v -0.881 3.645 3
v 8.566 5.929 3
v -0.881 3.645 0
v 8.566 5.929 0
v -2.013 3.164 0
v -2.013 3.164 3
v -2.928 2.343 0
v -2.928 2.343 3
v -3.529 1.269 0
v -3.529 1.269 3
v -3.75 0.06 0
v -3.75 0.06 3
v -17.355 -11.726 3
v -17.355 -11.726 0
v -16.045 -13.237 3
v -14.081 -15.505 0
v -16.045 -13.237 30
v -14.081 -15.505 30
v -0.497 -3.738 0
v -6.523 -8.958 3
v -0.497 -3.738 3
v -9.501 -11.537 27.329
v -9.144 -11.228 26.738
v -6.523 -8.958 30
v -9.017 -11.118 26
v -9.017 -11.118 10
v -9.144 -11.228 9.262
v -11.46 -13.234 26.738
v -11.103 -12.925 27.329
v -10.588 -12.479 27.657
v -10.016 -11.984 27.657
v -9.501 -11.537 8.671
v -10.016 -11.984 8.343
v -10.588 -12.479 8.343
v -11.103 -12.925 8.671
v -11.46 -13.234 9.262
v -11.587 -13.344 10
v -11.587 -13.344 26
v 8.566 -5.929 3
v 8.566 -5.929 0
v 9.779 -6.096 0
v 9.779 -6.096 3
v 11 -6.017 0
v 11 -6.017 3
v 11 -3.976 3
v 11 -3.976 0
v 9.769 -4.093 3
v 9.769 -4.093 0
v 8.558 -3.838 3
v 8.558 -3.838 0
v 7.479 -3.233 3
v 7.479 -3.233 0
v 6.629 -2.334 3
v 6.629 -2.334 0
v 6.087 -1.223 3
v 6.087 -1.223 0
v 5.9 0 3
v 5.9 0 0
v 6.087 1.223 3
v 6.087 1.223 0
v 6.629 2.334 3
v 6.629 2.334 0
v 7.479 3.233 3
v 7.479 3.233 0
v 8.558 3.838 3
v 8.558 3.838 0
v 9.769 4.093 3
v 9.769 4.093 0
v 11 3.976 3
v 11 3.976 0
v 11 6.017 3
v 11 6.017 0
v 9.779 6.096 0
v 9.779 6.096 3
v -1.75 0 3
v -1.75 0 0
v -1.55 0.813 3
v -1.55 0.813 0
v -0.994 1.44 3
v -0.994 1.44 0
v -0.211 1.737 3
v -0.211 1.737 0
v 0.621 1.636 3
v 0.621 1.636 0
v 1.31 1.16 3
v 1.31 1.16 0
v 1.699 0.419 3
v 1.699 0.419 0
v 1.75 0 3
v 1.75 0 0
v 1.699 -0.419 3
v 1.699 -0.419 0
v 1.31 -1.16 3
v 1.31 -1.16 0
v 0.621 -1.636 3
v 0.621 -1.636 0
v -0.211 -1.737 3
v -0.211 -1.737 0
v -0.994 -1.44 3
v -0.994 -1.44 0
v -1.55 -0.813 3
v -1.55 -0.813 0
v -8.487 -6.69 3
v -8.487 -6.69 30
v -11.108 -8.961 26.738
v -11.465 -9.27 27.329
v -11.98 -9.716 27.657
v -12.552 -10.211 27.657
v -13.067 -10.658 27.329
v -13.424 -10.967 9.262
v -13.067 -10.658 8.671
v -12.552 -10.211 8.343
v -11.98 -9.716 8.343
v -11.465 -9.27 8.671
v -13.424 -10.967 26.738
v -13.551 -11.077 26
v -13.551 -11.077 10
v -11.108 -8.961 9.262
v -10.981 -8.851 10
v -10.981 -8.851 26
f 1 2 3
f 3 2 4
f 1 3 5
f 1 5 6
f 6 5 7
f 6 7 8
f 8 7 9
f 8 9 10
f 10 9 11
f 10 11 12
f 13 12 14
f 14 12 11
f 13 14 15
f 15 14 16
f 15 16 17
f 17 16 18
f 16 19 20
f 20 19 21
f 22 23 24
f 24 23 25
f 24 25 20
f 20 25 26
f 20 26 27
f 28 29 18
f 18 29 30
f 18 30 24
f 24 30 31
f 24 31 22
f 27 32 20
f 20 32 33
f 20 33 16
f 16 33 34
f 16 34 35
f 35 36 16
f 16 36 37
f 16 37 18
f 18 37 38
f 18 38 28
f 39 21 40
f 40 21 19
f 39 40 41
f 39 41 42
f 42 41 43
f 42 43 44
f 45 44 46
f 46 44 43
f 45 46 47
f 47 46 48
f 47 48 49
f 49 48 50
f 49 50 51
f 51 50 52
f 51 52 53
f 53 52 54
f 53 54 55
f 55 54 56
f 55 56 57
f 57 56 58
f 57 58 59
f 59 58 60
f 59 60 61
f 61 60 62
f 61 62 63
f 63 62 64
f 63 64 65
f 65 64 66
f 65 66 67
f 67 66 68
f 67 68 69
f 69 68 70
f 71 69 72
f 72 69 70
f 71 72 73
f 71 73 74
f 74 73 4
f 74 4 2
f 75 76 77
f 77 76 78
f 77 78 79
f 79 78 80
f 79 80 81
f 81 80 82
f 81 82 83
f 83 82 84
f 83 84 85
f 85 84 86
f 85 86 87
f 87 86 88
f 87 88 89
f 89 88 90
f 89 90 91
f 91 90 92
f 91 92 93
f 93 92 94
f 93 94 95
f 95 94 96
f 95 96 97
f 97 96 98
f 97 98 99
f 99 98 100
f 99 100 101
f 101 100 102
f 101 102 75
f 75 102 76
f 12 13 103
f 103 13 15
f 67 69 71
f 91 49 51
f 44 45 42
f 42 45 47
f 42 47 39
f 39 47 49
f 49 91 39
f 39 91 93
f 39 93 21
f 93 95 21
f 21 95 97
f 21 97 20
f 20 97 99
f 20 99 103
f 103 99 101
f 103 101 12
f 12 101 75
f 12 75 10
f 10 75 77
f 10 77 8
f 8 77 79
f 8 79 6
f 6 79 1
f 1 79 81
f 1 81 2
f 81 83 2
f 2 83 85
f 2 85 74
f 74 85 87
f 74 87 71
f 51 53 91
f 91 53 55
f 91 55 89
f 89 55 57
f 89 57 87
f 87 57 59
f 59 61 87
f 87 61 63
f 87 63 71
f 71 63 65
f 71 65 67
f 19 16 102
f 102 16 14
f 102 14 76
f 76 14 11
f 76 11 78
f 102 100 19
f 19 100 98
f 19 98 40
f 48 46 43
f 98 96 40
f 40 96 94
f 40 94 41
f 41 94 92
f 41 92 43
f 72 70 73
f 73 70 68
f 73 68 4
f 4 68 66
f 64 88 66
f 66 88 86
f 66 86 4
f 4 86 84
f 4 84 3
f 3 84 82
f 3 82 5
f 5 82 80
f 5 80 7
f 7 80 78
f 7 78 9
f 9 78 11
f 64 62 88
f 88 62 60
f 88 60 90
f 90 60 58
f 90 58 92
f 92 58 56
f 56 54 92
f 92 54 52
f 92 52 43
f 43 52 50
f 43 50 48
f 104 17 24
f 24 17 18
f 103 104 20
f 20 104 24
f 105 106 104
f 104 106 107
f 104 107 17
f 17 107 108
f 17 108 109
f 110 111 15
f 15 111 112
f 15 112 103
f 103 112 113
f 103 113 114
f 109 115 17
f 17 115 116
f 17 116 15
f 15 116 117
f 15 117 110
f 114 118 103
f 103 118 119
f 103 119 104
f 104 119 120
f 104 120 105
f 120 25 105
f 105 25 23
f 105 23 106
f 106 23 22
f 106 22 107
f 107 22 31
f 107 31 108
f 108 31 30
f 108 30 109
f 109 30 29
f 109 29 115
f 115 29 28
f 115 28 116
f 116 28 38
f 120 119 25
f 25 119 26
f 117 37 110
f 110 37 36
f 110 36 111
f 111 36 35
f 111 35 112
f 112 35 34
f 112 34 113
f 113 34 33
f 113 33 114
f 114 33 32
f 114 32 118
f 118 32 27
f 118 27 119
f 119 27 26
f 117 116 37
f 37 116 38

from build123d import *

# Parameters (mm, degrees)
ESBO_O1_R                = 1.75
RESSALTO_EXTRUS_O1_DEPTH = 3
ESBO_O2_W                = 10
ESBO_O2_H                = 30
RESSALTO_EXTRUS_O2_DEPTH = 3


with BuildPart() as part:
    # Esboço1 → Ressalto-extrusão1 (new body)
    with BuildSketch(Plane.XY):
        with BuildLine():
            ThreePointArc((-0.475822638, -3.719689882), (3.744330631, 0.206126489), (-0.88125, 3.644982639))
            ThreePointArc((-0.88125, 3.644982639), (-2.928276933, 2.342582807), (-3.749526707, 0.059577464))
            ThreePointArc((-3.749526707, 0.059577464), (-2.965124722, -2.295764662), (-0.88125, -3.644982639))
            Line((-0.88125, -3.644982639), (-0.496863485, -3.737916035))
            Line((-0.496863485, -3.737916035), (-0.475822638, -3.719689882))
        make_face()
        Circle(ESBO_O1_R, mode=Mode.SUBTRACT)
        with BuildLine():
            Line((8.5665, 5.929171759), (-0.88125, 3.644982639))
            ThreePointArc((-0.88125, 3.644982639), (3.744330631, 0.206126489), (-0.475822638, -3.719689882))
            Line((-0.475822638, -3.719689882), (-0.496863485, -3.737916035))
            Line((-0.496863485, -3.737916035), (8.5665, -5.929171759))
            ThreePointArc((8.5665, -5.929171759), (9.778798941, -6.095988032), (11, -6.017474553))
            Line((11, -6.017474553), (11, -3.97617907))
            ThreePointArc((11, -3.97617907), (5.9, 0), (11, 3.97617907))
            Line((11, 3.97617907), (11, 6.017474553))
            ThreePointArc((11, 6.017474553), (9.778798941, 6.095988032), (8.5665, 5.929171759))
        make_face()
        with BuildLine():
            ThreePointArc((-0.88125, -3.644982639), (-2.965124722, -2.295764662), (-3.749526707, 0.059577464))
            Line((-3.749526707, 0.059577464), (-17.354889152, -11.725757183))
            Line((-17.354889152, -11.725757183), (-14.081185083, -15.505024529))
            Line((-14.081185083, -15.505024529), (-0.496863485, -3.737916035))
            Line((-0.496863485, -3.737916035), (-0.88125, -3.644982639))
        make_face()
    extrude(amount=RESSALTO_EXTRUS_O1_DEPTH)

    # Esboço2 → Ressalto-extrusão2 (add)
    with BuildSketch(Plane(origin=(1.636852034, -1.889633673, 0), x_dir=(0.755853469, 0.654740814, 0), z_dir=(0.654740814, -0.755853469, 0))):
        with Locations((-15.795084972, 15)):
            Rectangle(ESBO_O2_W, ESBO_O2_H)
        with BuildLine():
            Line((-14.095084972, 26), (-14.095084972, 10))
            ThreePointArc((-14.095084972, 10), (-15.795084972, 8.3), (-17.495084972, 10))
            Line((-17.495084972, 10), (-17.495084972, 26))
            ThreePointArc((-17.495084972, 26), (-15.795084972, 27.7), (-14.095084972, 26))
        make_face(mode=Mode.SUBTRACT)
    extrude(amount=-RESSALTO_EXTRUS_O2_DEPTH)


solid = part.part
